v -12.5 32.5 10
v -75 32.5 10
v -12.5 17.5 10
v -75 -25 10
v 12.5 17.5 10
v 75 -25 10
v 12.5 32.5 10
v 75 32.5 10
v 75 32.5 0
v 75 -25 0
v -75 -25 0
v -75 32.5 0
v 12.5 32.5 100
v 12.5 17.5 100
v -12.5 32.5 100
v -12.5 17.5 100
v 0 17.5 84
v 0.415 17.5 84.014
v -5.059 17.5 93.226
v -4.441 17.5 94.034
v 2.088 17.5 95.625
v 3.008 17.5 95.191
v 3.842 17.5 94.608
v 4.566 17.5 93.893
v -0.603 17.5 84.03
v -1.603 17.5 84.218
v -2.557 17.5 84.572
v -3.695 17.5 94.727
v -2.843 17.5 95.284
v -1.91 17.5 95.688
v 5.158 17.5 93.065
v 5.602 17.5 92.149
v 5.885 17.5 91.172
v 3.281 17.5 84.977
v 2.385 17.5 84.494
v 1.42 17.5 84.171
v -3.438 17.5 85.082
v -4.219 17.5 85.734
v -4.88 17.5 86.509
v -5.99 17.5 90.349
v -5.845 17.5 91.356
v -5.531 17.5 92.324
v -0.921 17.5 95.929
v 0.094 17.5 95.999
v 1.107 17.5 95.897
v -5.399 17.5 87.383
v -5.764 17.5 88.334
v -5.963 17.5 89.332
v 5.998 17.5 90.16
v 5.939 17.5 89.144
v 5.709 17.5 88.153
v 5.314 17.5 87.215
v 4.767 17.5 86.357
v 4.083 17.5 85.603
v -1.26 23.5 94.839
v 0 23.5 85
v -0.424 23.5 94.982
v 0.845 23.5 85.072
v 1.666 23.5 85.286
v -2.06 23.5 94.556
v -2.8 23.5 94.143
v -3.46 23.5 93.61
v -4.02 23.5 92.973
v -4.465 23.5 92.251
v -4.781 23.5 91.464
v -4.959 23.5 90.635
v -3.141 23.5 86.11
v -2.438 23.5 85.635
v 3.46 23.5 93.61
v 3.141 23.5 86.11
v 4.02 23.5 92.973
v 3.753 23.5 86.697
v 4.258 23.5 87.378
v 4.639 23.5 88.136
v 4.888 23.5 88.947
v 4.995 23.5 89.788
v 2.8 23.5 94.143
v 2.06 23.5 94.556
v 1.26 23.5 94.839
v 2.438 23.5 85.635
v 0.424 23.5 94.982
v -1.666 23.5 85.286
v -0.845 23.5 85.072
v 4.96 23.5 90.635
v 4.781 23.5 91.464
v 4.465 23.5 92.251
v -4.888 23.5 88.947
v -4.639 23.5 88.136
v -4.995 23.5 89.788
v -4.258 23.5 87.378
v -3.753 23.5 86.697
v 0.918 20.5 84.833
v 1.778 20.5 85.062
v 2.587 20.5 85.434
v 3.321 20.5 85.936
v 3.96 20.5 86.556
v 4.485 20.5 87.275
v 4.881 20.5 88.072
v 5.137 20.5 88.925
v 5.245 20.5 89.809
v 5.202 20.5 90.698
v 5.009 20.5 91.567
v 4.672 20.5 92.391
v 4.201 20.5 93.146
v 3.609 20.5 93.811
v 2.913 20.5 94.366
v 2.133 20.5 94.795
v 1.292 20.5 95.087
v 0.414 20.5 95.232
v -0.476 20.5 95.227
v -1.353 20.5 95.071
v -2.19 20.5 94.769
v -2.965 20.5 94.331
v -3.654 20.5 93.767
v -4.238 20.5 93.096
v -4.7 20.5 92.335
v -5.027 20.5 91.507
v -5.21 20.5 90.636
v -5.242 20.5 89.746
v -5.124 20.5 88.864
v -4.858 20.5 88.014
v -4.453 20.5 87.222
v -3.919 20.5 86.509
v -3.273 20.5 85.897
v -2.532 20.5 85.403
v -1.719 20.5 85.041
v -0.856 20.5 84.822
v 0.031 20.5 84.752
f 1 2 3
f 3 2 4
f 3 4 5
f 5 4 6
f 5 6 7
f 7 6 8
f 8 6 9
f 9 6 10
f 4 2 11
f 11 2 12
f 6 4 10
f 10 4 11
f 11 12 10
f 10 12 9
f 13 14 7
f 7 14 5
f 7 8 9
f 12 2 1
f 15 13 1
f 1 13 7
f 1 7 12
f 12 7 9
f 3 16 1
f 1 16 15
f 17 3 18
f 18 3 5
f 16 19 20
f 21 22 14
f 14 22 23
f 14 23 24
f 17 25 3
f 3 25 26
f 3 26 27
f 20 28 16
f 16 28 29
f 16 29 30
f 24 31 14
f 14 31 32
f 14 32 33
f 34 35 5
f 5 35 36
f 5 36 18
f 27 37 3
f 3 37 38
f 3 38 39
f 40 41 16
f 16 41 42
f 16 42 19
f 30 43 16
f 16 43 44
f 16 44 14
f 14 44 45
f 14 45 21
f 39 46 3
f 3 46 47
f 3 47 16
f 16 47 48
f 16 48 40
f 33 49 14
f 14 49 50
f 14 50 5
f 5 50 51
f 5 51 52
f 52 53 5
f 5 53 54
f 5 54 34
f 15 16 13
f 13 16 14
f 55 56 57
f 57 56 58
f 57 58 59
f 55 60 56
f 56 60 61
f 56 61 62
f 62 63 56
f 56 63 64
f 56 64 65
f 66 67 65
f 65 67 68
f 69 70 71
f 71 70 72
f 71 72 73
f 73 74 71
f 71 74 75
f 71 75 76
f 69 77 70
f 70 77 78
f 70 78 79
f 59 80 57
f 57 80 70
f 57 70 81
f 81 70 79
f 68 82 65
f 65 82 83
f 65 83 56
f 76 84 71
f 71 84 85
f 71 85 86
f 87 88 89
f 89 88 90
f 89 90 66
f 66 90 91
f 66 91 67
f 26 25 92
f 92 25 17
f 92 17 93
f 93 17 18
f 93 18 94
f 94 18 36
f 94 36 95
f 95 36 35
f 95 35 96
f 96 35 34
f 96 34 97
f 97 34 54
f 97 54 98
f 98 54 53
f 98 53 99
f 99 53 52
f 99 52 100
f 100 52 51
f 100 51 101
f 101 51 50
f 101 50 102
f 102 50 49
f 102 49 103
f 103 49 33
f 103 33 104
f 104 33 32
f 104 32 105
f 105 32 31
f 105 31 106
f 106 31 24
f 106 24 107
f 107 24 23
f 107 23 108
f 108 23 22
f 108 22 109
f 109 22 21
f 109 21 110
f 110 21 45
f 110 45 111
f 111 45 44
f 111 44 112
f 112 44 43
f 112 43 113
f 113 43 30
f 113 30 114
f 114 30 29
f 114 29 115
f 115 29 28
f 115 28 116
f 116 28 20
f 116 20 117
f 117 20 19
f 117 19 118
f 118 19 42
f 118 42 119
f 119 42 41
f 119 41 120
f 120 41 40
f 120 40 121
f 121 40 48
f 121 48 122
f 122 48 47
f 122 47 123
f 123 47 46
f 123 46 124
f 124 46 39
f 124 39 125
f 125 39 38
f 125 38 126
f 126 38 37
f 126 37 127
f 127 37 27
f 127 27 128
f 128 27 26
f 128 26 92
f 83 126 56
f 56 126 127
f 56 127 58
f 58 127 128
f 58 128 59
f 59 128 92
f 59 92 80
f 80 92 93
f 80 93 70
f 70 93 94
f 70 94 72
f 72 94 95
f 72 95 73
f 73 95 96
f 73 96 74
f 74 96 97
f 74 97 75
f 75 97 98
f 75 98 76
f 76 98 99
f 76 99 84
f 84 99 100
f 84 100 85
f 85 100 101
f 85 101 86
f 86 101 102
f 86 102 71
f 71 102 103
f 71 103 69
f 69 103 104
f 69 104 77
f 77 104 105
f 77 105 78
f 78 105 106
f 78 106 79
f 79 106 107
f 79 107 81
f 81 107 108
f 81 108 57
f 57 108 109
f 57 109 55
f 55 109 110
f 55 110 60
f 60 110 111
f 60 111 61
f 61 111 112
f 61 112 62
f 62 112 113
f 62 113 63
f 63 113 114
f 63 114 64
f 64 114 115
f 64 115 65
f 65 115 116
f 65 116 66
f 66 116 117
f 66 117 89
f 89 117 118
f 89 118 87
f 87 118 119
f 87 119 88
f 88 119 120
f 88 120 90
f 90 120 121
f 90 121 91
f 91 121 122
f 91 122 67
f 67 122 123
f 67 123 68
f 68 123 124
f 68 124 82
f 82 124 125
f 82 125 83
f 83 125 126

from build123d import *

# Parameters (mm, degrees)
SKETCH1_W           = 150
SKETCH1_H           = 50
BOSS_EXTRUDE1_DEPTH = 10
SKETCH2_W           = 25
SKETCH2_H           = 15
BOSS_EXTRUDE2_DEPTH = 90
SKETCH5_W           = 150
SKETCH5_H           = 10
BOSS_EXTRUDE3_DEPTH = 7.5


with BuildPart() as part:
    # Sketch1 → Boss-Extrude1 (new body)
    with BuildSketch(Plane.XY):
        Rectangle(SKETCH1_W, SKETCH1_H)
    extrude(amount=BOSS_EXTRUDE1_DEPTH)

    # Sketch2 → Boss-Extrude2 (add)
    with BuildSketch(Plane.XY.offset(10)):
        with Locations((0, 25)):
            Rectangle(SKETCH2_W, SKETCH2_H)
    extrude(amount=BOSS_EXTRUDE2_DEPTH)

    # Cut-Loft3: read off the stored shape, not the designer's step
    # Cut-Loft3: loft between two sections, ruled curve by curve
    cut_loft3_from = [
        Edge.make_bspline([(-3.437683222, 17.5, 85.082446333), (-13.272790555, 17.5, 91.957812777), (-6.397424111, 17.5, 101.792920111), (3.437683222, 17.5, 94.917553667), (13.272790555, 17.5, 88.042187223), (6.397424111, 17.5, 78.207079889), (-3.437683222, 17.5, 85.082446333)], [0, 0, 0, 0, 0.5, 0.5, 0.5, 1, 1, 1, 1], 3, [1, 0.333333333, 0.333333333, 1, 0.333333333, 0.333333333, 1]),
    ]
    cut_loft3_to = [
        Edge.make_bspline([(0, 23.5, 85), (-10, 23.5, 85), (-10, 23.5, 95), (0, 23.5, 95), (10, 23.5, 95), (10, 23.5, 85), (0, 23.5, 85)], [0, 0, 0, 0, 0.5, 0.5, 0.5, 1, 1, 1, 1], 3, [1, 0.333333333, 0.333333333, 1, 0.333333333, 0.333333333, 1]),
    ]
    cut_loft3 = Solid(Shell([*[Face.make_surface_from_curves(cut_loft3_from[k], cut_loft3_to[k]) for k in range(1)], Face(Wire(cut_loft3_from)), Face(Wire(cut_loft3_to))]))
    add(cut_loft3, mode=Mode.SUBTRACT)

    # Sketch5 → Boss-Extrude3 (add)
    with BuildSketch(Plane(origin=(0, 25, 0), x_dir=(1, 0, 0), z_dir=(0, 1, 0))):
        with Locations((0, -5)):
            Rectangle(SKETCH5_W, SKETCH5_H)
    extrude(amount=BOSS_EXTRUDE3_DEPTH)


solid = part.part
